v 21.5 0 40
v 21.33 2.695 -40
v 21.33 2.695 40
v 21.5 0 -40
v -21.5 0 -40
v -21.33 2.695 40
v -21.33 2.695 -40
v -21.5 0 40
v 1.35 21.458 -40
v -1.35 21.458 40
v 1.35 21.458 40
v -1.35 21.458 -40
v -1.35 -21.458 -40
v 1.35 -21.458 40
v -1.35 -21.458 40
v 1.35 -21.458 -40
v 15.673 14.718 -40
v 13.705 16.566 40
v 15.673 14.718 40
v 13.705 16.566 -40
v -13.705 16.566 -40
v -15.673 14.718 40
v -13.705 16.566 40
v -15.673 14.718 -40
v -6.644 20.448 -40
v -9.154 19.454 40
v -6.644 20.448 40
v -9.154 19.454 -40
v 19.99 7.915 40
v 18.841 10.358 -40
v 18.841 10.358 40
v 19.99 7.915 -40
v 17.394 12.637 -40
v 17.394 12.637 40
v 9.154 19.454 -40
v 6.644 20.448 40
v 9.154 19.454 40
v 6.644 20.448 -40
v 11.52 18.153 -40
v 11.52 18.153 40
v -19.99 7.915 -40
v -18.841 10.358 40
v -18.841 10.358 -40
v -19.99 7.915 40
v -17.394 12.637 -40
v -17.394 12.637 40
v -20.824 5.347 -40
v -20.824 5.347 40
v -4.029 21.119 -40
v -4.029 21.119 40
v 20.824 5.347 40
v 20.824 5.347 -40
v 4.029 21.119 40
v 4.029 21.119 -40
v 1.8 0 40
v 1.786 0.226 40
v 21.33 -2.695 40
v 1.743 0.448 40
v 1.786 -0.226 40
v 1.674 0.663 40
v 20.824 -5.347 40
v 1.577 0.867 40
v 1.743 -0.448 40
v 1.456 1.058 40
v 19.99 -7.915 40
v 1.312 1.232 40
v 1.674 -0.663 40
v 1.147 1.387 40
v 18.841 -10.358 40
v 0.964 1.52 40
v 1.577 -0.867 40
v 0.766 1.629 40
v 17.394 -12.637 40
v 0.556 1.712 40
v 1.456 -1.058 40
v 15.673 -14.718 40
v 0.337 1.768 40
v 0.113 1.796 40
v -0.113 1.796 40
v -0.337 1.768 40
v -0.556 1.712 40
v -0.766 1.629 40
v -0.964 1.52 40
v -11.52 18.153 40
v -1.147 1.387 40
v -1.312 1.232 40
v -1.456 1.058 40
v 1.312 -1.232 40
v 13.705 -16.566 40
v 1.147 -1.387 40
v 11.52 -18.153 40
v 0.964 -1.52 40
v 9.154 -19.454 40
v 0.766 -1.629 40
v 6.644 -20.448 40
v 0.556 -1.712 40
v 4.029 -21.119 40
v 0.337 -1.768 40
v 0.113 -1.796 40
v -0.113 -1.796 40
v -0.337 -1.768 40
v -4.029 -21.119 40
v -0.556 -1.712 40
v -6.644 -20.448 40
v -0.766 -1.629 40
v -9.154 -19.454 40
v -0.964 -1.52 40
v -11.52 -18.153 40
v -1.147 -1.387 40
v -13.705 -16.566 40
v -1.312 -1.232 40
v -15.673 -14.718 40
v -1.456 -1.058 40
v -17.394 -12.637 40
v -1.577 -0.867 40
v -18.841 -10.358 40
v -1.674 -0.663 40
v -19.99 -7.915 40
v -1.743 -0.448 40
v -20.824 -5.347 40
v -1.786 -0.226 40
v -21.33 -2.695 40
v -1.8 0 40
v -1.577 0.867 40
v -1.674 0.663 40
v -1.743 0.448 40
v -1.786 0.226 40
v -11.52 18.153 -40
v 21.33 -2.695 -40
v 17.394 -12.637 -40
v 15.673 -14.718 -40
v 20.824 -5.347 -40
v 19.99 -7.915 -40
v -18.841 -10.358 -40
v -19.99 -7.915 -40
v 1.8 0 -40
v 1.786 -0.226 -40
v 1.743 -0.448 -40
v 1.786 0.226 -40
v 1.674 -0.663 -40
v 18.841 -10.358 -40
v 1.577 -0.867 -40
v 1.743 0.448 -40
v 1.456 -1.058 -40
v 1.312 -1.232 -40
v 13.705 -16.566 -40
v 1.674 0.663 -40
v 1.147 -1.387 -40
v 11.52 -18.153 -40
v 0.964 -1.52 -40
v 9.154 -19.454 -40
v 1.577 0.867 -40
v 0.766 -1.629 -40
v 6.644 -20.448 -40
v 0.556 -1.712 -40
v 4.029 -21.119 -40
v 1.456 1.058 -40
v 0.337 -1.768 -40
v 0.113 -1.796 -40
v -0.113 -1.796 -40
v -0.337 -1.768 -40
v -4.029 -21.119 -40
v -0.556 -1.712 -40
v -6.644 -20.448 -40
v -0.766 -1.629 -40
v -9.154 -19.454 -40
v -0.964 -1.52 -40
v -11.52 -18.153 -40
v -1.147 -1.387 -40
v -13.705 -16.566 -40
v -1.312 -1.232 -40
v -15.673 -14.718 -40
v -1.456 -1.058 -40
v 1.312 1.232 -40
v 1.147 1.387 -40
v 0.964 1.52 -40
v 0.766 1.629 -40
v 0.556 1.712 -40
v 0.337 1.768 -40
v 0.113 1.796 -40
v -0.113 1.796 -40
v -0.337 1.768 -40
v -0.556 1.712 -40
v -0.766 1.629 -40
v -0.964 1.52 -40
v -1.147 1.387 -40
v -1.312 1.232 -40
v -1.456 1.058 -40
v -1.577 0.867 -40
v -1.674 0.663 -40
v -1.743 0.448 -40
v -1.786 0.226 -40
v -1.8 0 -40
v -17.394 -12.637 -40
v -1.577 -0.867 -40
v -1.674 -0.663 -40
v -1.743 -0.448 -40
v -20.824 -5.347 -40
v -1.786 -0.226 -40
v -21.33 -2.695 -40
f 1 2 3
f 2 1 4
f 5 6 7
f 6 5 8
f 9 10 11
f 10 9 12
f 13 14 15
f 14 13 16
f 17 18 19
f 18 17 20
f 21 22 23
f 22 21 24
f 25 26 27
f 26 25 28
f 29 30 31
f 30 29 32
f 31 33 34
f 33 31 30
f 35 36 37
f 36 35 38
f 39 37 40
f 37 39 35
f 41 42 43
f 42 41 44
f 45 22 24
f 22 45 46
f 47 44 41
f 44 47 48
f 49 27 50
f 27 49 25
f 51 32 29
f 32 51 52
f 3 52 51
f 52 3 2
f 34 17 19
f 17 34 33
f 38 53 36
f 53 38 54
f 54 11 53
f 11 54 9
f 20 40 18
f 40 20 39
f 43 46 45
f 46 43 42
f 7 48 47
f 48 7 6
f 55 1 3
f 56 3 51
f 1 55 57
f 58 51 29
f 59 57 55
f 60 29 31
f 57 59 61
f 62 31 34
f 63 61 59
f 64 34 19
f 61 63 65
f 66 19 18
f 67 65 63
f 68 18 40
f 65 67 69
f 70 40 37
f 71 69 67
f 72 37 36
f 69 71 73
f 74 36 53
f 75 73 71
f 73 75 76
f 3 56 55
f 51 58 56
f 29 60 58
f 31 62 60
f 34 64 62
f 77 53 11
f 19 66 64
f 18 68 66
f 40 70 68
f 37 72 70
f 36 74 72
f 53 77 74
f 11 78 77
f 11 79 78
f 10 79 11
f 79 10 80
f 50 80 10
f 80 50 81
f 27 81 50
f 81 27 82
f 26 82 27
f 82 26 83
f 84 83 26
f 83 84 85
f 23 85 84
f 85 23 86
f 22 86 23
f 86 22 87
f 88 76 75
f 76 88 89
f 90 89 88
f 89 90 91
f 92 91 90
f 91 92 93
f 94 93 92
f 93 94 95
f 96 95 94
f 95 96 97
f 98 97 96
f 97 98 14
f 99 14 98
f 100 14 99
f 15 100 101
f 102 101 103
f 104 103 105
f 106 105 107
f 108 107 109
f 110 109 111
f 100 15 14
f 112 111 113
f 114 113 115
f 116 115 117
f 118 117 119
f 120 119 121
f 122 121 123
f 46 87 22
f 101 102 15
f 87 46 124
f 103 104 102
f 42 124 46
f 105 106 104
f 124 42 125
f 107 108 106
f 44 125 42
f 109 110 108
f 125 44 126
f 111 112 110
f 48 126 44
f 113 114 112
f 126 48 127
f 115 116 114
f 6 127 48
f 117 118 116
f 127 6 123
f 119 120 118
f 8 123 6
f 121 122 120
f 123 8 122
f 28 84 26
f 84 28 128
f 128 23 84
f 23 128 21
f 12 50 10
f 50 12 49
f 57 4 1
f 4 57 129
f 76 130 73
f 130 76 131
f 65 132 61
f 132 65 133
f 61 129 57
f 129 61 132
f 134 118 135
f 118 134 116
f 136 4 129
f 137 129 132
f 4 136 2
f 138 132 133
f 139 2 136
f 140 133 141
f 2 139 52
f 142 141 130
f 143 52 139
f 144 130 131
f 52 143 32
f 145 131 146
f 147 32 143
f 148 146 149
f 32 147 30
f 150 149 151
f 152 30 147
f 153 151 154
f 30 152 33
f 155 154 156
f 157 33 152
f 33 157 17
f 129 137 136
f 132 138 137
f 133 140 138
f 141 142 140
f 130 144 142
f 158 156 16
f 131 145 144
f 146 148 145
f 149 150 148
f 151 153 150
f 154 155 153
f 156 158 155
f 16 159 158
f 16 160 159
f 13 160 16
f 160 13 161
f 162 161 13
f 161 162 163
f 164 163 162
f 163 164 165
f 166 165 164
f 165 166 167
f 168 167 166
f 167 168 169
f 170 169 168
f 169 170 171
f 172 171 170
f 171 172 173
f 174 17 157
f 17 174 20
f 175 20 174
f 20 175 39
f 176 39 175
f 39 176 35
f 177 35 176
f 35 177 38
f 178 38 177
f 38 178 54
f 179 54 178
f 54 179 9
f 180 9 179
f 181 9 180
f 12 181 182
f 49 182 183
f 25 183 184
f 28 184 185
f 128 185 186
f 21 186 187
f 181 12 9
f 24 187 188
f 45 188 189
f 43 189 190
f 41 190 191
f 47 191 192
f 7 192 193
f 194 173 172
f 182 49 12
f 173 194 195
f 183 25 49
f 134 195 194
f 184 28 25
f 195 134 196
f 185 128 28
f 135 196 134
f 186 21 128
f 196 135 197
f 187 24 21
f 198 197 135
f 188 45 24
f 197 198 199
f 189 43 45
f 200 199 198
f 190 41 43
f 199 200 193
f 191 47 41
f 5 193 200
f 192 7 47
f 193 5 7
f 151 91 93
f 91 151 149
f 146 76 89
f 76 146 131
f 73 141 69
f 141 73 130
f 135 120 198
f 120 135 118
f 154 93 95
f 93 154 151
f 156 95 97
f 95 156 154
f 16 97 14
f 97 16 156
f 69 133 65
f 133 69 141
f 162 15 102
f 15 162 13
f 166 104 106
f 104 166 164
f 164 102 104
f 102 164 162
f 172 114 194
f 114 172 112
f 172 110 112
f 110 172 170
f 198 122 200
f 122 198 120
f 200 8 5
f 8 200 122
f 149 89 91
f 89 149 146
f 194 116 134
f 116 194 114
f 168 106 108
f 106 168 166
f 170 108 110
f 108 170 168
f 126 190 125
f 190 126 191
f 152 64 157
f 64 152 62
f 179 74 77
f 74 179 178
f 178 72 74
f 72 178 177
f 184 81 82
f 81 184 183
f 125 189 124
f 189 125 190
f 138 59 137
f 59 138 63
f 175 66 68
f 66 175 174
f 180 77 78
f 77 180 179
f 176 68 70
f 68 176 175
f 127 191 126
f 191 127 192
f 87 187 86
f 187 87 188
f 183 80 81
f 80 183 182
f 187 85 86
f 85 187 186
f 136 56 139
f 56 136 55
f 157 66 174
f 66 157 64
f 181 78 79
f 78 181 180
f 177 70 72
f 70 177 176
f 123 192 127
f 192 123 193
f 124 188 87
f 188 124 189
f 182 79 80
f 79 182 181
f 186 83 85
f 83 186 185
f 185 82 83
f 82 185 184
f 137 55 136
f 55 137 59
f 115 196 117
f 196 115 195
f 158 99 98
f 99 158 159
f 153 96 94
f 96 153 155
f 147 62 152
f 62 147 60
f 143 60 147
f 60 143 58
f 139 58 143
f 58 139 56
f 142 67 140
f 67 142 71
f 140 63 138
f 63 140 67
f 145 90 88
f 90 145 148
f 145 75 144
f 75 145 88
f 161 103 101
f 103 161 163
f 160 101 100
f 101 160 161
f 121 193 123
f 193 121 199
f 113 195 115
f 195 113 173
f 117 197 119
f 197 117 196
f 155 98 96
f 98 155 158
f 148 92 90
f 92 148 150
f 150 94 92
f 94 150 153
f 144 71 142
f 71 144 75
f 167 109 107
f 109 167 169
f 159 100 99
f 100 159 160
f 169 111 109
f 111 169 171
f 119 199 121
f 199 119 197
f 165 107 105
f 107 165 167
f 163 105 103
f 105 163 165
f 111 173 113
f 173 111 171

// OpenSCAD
$fn = 50;


difference() {
	union() {
		translate(v = [0, 0, -40.0000000000]) {
			cylinder(h = 80, r = 21.5000000000);
		}
	}
	union() {
		translate(v = [0, 0, -100.0000000000]) {
			cylinder(h = 200, r = 1.8000000000);
		}
	}
}
